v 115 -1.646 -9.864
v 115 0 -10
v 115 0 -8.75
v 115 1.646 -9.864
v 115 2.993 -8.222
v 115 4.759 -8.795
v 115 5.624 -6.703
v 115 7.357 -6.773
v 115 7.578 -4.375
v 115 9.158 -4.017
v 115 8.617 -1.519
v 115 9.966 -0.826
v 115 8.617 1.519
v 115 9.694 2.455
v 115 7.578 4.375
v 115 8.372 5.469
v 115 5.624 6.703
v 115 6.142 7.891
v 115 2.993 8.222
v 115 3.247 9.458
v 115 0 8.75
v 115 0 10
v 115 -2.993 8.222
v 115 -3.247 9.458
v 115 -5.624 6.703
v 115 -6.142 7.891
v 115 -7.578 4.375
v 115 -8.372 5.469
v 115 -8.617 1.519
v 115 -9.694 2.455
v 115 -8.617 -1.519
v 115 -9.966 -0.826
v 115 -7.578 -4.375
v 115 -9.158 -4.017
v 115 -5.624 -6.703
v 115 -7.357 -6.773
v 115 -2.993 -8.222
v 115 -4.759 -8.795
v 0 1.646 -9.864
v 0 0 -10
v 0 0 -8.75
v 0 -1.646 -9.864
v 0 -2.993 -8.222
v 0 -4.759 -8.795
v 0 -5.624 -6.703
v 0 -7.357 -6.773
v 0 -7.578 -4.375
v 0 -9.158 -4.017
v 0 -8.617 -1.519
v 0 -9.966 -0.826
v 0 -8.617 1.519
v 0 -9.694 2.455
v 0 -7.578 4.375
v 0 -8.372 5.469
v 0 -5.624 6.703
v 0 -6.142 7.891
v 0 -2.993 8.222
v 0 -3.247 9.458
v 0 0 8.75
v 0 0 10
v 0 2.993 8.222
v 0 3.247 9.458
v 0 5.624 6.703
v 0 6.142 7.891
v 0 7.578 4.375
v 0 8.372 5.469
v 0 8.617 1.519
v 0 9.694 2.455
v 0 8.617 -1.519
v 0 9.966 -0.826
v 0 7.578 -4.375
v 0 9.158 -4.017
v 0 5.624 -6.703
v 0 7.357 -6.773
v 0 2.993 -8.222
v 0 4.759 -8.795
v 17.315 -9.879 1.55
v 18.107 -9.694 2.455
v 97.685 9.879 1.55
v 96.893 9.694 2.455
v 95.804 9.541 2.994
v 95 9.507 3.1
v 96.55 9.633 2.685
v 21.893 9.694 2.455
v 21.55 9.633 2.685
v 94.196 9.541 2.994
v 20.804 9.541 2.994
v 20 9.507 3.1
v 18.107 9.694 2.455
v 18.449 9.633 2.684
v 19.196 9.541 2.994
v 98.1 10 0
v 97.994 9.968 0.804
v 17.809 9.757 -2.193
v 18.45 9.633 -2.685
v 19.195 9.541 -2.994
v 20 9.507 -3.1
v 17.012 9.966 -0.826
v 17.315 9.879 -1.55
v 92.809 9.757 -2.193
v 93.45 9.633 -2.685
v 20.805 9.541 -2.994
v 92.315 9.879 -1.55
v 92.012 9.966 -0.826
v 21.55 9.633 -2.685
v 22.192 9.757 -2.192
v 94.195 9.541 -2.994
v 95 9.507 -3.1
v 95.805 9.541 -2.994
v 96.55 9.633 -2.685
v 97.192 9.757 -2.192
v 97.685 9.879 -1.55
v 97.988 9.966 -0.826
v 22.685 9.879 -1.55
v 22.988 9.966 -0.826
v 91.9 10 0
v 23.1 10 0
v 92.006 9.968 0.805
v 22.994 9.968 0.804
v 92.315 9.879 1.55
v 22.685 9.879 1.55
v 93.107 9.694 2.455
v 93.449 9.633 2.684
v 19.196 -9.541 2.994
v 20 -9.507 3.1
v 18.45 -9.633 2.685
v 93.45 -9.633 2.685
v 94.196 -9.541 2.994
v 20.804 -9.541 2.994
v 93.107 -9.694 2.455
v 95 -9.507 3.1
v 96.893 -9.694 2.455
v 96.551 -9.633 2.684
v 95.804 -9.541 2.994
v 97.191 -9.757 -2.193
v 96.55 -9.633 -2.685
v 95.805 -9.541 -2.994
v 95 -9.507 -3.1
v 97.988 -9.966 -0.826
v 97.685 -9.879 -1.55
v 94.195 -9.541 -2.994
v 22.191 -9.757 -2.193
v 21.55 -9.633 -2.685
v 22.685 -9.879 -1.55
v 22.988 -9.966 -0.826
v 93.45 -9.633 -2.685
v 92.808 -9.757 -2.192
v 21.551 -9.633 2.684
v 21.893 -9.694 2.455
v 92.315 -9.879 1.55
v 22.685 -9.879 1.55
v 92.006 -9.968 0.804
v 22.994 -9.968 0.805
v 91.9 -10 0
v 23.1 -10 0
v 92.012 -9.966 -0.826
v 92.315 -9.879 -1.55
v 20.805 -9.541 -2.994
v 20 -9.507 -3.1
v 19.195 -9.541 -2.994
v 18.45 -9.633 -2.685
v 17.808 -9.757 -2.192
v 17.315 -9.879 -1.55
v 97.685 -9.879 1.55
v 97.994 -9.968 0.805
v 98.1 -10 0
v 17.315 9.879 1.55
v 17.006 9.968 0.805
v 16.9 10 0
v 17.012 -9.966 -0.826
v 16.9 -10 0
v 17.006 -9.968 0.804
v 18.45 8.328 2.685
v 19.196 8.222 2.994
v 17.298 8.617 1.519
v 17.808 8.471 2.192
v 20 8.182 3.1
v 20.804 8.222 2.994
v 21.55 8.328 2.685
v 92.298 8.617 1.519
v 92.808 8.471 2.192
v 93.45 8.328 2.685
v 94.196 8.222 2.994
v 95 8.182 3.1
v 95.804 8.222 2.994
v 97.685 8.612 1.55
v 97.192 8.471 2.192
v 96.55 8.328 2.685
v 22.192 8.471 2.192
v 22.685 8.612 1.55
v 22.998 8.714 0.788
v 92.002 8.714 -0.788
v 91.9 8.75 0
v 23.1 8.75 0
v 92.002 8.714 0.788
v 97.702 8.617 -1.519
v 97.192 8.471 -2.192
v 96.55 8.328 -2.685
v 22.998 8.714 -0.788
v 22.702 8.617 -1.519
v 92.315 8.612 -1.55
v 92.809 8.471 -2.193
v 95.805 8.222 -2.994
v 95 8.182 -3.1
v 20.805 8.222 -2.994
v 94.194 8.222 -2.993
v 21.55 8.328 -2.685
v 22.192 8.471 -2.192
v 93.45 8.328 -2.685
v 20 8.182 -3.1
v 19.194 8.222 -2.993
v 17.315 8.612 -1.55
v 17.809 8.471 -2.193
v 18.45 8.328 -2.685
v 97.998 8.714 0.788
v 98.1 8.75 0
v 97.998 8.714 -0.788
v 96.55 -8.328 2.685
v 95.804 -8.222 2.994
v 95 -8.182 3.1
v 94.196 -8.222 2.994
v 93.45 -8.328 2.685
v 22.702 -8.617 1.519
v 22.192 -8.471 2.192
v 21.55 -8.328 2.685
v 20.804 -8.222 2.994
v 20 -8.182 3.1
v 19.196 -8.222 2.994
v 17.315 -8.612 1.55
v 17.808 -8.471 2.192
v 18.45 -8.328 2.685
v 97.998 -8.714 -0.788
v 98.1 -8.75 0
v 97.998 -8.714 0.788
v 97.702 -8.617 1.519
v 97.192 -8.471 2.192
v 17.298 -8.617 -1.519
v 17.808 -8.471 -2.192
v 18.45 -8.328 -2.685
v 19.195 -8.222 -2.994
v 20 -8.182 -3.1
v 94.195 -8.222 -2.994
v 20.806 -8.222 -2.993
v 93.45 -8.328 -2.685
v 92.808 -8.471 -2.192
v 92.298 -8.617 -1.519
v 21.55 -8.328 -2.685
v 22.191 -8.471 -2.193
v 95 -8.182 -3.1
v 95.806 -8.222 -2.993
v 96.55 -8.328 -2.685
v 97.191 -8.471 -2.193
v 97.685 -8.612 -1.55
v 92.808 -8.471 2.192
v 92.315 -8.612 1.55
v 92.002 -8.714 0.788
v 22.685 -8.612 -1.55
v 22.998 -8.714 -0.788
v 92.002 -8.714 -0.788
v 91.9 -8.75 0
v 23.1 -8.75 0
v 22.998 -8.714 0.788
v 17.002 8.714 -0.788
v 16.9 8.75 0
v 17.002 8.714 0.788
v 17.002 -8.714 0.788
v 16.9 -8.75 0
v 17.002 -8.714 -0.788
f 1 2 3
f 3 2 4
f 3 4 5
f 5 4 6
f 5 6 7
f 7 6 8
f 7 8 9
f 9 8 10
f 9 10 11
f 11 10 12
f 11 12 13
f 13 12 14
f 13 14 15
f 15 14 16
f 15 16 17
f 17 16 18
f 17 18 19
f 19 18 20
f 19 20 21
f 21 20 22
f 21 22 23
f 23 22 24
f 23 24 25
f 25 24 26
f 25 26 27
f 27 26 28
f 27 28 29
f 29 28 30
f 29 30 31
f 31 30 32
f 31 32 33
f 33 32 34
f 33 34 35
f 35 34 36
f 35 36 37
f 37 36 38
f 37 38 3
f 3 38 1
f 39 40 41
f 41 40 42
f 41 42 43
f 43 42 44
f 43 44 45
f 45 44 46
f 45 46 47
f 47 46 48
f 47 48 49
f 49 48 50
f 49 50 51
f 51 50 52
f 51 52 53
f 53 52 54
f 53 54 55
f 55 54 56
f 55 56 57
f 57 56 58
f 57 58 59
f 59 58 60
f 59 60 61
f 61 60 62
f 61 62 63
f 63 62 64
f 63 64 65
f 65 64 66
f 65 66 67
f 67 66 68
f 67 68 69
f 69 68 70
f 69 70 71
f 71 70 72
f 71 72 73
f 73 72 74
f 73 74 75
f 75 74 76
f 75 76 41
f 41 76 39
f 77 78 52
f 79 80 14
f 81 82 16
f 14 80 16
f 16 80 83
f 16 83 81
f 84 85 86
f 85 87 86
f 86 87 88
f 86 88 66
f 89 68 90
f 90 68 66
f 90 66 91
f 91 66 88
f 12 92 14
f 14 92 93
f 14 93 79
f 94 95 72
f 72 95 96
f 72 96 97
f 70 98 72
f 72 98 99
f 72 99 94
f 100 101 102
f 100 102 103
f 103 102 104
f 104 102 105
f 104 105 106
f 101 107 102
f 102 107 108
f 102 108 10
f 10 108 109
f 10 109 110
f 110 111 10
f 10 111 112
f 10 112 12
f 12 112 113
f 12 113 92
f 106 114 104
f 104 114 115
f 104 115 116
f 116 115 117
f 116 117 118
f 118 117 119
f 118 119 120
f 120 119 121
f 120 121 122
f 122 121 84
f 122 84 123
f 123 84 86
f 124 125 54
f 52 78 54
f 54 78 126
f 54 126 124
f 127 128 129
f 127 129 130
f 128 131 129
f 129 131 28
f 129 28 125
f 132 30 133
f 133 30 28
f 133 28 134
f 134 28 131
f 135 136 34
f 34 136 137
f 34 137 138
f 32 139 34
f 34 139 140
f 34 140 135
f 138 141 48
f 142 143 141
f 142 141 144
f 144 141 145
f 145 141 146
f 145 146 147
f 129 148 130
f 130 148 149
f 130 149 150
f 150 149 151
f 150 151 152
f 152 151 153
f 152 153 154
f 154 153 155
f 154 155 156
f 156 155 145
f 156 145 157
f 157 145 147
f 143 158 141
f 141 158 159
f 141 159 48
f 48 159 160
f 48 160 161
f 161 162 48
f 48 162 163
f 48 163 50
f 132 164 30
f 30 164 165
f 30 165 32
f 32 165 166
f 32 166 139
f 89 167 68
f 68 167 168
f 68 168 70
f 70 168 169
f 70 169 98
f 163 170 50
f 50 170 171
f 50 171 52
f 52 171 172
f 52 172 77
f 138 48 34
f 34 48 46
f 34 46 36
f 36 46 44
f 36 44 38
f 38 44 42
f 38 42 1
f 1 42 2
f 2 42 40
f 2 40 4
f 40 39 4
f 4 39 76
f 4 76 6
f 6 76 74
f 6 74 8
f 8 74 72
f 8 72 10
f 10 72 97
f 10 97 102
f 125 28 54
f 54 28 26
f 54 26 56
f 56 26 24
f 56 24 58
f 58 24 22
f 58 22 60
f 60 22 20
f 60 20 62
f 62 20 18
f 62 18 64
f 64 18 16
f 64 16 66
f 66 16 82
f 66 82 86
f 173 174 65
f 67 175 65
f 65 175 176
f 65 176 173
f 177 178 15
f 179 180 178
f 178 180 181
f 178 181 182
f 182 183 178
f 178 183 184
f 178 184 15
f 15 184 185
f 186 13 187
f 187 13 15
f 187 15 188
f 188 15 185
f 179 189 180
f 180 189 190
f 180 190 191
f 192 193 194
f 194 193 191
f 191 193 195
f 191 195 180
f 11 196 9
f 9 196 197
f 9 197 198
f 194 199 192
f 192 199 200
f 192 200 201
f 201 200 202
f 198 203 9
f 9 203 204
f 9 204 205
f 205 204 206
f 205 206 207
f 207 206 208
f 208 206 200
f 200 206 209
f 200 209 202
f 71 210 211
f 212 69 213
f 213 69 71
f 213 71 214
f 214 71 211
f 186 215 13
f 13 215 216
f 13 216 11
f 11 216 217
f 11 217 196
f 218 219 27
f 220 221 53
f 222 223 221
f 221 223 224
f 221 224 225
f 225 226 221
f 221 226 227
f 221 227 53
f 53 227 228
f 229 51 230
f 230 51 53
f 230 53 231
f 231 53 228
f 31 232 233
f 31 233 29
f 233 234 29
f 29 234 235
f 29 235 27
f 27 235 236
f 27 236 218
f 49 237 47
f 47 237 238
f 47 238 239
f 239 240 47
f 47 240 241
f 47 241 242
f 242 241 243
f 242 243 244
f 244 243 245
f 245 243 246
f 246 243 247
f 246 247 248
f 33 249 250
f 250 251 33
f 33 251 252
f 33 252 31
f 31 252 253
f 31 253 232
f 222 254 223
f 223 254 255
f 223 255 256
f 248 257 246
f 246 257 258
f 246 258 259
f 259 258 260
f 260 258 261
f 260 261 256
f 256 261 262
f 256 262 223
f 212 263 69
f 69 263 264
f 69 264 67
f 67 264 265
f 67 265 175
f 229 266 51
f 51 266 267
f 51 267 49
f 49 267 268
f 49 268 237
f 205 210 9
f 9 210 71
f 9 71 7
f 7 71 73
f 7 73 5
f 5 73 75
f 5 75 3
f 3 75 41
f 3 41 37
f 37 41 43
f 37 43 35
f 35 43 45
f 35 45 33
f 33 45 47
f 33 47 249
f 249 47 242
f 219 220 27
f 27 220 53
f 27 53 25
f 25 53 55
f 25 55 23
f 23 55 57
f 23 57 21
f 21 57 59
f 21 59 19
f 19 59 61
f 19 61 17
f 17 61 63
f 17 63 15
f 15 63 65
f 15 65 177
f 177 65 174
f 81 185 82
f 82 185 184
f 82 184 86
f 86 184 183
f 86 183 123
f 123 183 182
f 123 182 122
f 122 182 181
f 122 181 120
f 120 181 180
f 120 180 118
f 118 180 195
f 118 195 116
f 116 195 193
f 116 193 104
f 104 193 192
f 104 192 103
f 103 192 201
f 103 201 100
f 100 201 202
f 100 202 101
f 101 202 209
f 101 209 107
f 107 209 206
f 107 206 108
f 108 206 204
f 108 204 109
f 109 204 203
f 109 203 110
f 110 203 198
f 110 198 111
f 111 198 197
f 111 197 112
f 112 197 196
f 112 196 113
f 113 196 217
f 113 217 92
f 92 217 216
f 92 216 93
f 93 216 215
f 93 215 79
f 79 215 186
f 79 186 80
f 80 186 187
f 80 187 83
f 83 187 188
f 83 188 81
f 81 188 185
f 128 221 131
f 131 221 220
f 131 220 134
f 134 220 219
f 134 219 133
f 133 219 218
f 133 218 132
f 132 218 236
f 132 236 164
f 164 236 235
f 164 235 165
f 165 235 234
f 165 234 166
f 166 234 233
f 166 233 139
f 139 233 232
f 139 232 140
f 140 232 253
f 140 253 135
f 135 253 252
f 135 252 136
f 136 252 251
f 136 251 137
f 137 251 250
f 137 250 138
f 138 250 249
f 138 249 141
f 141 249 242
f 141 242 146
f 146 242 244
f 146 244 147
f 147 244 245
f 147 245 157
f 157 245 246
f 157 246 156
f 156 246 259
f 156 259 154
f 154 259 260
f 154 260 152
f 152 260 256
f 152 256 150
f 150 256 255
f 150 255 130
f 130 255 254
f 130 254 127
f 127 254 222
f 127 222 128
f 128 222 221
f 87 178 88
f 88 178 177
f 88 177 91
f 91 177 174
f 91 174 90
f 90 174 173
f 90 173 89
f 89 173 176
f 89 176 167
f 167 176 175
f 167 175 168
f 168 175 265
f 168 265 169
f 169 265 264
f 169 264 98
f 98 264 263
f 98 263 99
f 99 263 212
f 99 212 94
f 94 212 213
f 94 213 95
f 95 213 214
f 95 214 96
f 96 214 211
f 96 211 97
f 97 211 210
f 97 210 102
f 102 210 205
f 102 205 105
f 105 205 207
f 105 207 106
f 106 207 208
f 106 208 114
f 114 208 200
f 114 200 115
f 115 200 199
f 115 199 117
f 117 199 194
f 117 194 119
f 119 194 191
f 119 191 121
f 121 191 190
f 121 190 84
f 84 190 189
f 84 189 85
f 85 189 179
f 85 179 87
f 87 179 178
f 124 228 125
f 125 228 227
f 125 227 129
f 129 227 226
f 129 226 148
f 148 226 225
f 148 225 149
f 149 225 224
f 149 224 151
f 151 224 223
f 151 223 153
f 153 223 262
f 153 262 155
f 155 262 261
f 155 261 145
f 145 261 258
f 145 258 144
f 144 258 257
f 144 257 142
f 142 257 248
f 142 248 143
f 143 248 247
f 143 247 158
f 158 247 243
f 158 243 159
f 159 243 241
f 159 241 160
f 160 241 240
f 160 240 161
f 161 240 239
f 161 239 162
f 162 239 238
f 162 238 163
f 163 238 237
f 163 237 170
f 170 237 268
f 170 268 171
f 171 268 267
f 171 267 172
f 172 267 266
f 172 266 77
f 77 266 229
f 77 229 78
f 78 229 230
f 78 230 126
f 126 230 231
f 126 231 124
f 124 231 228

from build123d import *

# Parameters (mm, degrees)
SKETCH_1_R               = 10
SKETCH_1_R_2             = 8.75
EXTRUDE_1_DEPTH          = 115
CUT_EXTRUDE_1_DEPTH      = 116.866302263
CUT_EXTRUDE_1_DEPTH_BACK = 116.866302263
SKETCH_2_R               = 3


with BuildPart() as part:
    # 草图1 → 凸台-拉伸1 (new body)
    with BuildSketch(Plane(origin=(0, 0, 0), x_dir=(0, 0, -1), z_dir=(1, 0, 0))):
        Circle(SKETCH_1_R)
        Circle(SKETCH_1_R_2, mode=Mode.SUBTRACT)
    extrude(amount=EXTRUDE_1_DEPTH)

    # 草图2 → 切除-拉伸1 (cut, two sides: drawn at the far end of the back side and taken through both)
    with BuildSketch(Plane(origin=(0, 0, 0), x_dir=(1, 0, 0), z_dir=(0, 1, 0)).offset(-CUT_EXTRUDE_1_DEPTH_BACK)):
        with Locations(Location((20, 0, 0), (0, 0, 270))):
            Circle(SKETCH_2_R)
        with Locations(Location((95, 0, 0), (0, 0, 270))):
            Circle(SKETCH_2_R)
    extrude(amount=CUT_EXTRUDE_1_DEPTH + CUT_EXTRUDE_1_DEPTH_BACK, mode=Mode.SUBTRACT)


solid = part.part
